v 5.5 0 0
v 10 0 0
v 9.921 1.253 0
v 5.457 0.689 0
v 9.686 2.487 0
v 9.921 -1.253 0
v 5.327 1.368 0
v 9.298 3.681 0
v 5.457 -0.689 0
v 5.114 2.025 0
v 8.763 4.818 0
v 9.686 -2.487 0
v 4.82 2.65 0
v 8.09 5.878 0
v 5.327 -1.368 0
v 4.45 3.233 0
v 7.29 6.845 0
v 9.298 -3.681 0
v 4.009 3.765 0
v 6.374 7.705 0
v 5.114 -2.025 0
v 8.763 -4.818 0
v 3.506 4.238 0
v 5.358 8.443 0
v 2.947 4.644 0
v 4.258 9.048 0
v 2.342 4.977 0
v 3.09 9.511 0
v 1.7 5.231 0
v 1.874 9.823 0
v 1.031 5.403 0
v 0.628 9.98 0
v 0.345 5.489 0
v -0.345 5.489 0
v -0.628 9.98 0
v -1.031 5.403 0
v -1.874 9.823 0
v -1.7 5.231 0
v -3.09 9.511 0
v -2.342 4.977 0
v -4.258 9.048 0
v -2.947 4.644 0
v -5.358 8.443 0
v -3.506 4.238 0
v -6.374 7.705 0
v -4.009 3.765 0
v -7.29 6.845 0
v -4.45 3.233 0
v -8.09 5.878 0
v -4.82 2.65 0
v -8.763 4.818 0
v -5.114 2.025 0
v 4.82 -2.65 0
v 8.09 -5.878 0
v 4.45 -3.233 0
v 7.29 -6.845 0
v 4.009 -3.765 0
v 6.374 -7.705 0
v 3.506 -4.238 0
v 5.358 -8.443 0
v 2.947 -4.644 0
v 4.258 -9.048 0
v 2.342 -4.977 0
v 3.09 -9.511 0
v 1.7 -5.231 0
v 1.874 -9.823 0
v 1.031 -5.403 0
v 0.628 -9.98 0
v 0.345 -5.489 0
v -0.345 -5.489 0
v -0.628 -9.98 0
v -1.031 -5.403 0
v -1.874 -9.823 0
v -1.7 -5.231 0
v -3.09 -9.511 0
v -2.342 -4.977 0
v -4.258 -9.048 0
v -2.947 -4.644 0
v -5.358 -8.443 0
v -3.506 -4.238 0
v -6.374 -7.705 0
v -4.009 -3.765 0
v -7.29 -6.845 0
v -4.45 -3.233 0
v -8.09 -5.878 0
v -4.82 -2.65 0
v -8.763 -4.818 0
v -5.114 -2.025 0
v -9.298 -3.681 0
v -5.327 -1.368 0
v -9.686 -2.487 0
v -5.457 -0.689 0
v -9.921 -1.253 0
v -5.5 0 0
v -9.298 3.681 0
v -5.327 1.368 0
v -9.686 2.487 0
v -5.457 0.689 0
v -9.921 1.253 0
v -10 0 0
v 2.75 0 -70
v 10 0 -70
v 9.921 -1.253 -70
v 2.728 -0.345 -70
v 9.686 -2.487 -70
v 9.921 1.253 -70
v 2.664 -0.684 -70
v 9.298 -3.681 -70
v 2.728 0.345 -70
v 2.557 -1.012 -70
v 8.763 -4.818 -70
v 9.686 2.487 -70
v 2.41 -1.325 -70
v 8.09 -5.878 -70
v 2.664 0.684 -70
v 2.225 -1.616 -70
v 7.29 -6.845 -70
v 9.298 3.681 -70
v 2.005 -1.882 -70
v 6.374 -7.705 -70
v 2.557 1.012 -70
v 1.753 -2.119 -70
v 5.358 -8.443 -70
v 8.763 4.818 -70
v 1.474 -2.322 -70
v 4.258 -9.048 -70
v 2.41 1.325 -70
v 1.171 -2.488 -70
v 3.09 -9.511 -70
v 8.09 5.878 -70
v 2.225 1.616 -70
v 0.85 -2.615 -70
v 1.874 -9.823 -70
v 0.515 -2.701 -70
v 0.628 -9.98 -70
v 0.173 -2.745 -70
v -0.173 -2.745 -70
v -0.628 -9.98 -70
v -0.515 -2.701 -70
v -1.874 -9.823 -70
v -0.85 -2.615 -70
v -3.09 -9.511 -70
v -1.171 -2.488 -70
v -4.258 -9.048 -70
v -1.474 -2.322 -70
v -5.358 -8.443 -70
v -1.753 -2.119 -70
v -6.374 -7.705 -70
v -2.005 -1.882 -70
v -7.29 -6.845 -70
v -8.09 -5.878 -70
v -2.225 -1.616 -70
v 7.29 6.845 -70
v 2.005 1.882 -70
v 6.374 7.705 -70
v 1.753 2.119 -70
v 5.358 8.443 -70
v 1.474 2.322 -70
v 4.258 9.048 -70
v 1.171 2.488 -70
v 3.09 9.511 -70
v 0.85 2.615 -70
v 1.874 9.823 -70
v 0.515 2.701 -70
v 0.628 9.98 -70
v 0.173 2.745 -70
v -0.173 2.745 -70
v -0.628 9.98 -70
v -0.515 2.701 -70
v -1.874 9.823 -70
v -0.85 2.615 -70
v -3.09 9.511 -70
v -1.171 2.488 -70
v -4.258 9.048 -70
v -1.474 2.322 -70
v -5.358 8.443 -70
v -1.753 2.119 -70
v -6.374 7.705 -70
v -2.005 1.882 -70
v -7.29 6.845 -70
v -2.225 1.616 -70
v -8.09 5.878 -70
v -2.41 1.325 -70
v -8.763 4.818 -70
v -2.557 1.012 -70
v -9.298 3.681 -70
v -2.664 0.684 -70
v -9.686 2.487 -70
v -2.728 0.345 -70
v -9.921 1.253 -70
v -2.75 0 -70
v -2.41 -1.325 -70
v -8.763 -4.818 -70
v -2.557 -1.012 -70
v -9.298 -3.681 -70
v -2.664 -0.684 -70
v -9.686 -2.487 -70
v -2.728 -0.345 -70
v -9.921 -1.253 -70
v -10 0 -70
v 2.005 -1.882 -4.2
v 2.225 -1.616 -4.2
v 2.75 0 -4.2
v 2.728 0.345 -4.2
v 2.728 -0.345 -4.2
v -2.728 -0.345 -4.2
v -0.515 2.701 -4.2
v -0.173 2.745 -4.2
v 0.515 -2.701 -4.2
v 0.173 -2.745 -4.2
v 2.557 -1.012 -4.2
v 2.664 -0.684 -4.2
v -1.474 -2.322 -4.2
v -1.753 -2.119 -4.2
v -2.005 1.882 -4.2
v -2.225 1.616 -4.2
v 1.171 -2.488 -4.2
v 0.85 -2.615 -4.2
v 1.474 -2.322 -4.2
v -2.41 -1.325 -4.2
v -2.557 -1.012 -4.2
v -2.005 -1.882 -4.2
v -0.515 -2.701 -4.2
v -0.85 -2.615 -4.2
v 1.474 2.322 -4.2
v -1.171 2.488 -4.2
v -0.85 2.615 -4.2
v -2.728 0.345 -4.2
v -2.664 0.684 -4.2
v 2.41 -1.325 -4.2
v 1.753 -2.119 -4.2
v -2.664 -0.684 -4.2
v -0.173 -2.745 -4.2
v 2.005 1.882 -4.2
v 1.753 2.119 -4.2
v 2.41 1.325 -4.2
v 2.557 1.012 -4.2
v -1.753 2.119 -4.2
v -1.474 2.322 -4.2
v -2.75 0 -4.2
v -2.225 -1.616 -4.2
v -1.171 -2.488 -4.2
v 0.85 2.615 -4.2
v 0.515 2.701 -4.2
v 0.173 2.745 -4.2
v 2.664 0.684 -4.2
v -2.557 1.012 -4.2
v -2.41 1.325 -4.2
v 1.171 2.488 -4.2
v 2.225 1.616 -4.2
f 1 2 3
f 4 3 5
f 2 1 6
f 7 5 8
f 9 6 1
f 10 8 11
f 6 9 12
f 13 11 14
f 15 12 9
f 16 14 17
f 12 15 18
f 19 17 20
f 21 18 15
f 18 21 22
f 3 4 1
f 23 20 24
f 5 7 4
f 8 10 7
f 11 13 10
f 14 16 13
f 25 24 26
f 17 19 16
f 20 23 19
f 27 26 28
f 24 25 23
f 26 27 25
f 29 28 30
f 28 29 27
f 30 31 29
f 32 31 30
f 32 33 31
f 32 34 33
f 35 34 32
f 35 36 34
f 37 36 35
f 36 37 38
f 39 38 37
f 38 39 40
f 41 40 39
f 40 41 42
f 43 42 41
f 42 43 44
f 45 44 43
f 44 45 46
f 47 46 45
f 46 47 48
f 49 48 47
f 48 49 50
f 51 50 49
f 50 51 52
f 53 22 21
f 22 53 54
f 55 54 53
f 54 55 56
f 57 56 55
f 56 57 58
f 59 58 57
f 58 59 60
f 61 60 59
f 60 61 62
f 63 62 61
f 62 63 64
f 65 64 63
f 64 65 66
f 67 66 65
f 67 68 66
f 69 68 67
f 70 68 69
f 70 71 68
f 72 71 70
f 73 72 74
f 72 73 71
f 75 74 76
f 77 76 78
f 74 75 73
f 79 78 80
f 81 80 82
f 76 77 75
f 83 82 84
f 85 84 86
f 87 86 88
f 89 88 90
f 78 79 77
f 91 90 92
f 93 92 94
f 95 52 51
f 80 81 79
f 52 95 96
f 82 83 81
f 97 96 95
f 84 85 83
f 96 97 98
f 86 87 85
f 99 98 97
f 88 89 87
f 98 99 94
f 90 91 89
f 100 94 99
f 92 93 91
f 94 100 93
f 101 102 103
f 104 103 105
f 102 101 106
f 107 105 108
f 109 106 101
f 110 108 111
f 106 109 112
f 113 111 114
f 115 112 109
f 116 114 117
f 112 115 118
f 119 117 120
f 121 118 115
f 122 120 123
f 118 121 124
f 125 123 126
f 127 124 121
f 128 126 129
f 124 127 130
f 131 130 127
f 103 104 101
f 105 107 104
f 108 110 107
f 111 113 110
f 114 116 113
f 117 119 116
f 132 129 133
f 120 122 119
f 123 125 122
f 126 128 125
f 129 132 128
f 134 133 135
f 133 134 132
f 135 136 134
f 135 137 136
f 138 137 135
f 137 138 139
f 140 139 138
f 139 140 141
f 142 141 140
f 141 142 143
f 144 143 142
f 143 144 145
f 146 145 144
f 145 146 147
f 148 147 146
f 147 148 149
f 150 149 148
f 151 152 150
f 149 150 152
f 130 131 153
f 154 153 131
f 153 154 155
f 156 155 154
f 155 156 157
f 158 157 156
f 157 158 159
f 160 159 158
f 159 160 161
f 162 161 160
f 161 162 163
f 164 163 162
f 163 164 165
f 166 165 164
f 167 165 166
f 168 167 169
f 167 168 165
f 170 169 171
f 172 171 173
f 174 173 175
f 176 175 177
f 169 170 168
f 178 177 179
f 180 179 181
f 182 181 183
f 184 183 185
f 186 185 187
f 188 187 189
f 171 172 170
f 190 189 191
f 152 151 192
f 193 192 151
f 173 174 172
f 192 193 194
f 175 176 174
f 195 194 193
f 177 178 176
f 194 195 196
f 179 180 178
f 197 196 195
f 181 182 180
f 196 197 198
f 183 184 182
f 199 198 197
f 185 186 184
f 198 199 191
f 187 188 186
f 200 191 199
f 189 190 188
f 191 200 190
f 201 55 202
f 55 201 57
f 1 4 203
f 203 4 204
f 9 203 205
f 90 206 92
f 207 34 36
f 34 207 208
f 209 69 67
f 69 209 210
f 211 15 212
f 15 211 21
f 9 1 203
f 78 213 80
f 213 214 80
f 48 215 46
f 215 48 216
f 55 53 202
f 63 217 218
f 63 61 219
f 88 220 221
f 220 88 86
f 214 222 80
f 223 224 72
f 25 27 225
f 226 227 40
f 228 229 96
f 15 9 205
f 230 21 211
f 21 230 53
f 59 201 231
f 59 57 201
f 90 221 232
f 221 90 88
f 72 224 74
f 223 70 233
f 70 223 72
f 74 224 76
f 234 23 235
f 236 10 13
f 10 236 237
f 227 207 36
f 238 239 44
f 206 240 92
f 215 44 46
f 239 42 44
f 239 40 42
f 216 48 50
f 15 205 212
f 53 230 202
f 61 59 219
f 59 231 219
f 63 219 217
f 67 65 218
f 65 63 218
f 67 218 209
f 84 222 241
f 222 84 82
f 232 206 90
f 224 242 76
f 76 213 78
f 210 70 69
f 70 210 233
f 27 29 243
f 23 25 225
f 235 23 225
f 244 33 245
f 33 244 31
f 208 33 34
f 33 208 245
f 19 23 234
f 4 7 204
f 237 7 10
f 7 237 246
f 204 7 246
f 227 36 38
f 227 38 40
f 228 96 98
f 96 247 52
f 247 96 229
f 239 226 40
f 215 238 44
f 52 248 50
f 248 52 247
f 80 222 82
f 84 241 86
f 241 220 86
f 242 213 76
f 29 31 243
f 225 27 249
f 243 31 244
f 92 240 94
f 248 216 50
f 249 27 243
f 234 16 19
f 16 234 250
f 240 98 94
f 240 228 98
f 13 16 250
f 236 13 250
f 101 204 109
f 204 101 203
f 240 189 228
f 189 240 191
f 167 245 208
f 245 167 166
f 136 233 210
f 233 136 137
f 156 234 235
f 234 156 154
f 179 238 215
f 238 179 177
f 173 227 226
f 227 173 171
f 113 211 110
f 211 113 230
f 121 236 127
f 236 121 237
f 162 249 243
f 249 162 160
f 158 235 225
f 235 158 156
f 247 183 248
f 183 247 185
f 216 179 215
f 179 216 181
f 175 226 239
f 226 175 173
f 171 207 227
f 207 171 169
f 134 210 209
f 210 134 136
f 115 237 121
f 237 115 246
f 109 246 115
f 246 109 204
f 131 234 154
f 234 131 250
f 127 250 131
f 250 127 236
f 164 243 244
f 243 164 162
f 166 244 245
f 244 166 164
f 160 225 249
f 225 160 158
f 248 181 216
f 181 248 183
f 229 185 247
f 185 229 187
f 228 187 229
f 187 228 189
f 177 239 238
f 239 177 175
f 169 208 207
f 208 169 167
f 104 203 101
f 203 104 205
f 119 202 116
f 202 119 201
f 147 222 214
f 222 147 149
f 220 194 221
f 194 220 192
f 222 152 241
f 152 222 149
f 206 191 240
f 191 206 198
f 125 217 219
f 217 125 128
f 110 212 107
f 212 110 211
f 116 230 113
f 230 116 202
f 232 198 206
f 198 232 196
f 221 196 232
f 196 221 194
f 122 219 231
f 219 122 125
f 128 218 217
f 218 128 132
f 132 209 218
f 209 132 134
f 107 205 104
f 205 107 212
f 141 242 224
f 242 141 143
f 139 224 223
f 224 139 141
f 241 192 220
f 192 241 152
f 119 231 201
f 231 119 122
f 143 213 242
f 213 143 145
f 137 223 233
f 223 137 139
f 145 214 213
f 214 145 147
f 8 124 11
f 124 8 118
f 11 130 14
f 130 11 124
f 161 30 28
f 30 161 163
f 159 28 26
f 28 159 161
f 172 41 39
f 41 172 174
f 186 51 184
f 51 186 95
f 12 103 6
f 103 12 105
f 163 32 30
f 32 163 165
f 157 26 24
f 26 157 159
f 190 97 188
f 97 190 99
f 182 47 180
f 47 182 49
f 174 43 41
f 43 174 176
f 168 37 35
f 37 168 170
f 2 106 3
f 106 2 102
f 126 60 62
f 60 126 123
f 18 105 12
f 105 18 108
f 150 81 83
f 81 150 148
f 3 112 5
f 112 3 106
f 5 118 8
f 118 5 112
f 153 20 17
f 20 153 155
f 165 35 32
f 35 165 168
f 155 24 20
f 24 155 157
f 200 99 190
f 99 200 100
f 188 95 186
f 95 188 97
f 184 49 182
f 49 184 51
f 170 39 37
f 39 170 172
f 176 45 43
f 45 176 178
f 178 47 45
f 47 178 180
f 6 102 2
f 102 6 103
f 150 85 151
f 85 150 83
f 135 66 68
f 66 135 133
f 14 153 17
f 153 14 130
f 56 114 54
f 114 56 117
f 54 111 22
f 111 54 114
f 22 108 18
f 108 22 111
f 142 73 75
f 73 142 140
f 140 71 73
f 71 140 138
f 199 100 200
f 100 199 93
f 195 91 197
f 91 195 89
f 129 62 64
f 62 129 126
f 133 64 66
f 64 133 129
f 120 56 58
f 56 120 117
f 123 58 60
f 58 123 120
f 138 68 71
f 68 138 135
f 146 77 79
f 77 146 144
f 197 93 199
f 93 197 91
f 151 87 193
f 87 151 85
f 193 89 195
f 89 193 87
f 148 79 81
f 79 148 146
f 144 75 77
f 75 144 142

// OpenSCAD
$fn = 50;


difference() {
	union() {
		translate(v = [0, 0, -70.0000000000]) {
			cylinder(h = 70, r = 10.0000000000);
		}
		cylinder(h = 0, r = 16.0000000000);
	}
	union() {
		translate(v = [0, 0, 0]) {
			rotate(a = [0, 0, 0]) {
				difference() {
					union() {
						#translate(v = [0, 0, -70.0000000000]) {
							cylinder(h = 70, r = 2.2500000000);
						}
						#translate(v = [0, 0, -4.2000000000]) {
							cylinder(h = 4.2000000000, r1 = 2.7500000000, r2 = 5.5000000000);
						}
						#translate(v = [0, 0, -70.0000000000]) {
							cylinder(h = 70, r = 2.7500000000);
						}
						#translate(v = [0, 0, -70.0000000000]) {
							cylinder(h = 70, r = 2.2500000000);
						}
					}
					union();
				}
			}
		}
	}
}
